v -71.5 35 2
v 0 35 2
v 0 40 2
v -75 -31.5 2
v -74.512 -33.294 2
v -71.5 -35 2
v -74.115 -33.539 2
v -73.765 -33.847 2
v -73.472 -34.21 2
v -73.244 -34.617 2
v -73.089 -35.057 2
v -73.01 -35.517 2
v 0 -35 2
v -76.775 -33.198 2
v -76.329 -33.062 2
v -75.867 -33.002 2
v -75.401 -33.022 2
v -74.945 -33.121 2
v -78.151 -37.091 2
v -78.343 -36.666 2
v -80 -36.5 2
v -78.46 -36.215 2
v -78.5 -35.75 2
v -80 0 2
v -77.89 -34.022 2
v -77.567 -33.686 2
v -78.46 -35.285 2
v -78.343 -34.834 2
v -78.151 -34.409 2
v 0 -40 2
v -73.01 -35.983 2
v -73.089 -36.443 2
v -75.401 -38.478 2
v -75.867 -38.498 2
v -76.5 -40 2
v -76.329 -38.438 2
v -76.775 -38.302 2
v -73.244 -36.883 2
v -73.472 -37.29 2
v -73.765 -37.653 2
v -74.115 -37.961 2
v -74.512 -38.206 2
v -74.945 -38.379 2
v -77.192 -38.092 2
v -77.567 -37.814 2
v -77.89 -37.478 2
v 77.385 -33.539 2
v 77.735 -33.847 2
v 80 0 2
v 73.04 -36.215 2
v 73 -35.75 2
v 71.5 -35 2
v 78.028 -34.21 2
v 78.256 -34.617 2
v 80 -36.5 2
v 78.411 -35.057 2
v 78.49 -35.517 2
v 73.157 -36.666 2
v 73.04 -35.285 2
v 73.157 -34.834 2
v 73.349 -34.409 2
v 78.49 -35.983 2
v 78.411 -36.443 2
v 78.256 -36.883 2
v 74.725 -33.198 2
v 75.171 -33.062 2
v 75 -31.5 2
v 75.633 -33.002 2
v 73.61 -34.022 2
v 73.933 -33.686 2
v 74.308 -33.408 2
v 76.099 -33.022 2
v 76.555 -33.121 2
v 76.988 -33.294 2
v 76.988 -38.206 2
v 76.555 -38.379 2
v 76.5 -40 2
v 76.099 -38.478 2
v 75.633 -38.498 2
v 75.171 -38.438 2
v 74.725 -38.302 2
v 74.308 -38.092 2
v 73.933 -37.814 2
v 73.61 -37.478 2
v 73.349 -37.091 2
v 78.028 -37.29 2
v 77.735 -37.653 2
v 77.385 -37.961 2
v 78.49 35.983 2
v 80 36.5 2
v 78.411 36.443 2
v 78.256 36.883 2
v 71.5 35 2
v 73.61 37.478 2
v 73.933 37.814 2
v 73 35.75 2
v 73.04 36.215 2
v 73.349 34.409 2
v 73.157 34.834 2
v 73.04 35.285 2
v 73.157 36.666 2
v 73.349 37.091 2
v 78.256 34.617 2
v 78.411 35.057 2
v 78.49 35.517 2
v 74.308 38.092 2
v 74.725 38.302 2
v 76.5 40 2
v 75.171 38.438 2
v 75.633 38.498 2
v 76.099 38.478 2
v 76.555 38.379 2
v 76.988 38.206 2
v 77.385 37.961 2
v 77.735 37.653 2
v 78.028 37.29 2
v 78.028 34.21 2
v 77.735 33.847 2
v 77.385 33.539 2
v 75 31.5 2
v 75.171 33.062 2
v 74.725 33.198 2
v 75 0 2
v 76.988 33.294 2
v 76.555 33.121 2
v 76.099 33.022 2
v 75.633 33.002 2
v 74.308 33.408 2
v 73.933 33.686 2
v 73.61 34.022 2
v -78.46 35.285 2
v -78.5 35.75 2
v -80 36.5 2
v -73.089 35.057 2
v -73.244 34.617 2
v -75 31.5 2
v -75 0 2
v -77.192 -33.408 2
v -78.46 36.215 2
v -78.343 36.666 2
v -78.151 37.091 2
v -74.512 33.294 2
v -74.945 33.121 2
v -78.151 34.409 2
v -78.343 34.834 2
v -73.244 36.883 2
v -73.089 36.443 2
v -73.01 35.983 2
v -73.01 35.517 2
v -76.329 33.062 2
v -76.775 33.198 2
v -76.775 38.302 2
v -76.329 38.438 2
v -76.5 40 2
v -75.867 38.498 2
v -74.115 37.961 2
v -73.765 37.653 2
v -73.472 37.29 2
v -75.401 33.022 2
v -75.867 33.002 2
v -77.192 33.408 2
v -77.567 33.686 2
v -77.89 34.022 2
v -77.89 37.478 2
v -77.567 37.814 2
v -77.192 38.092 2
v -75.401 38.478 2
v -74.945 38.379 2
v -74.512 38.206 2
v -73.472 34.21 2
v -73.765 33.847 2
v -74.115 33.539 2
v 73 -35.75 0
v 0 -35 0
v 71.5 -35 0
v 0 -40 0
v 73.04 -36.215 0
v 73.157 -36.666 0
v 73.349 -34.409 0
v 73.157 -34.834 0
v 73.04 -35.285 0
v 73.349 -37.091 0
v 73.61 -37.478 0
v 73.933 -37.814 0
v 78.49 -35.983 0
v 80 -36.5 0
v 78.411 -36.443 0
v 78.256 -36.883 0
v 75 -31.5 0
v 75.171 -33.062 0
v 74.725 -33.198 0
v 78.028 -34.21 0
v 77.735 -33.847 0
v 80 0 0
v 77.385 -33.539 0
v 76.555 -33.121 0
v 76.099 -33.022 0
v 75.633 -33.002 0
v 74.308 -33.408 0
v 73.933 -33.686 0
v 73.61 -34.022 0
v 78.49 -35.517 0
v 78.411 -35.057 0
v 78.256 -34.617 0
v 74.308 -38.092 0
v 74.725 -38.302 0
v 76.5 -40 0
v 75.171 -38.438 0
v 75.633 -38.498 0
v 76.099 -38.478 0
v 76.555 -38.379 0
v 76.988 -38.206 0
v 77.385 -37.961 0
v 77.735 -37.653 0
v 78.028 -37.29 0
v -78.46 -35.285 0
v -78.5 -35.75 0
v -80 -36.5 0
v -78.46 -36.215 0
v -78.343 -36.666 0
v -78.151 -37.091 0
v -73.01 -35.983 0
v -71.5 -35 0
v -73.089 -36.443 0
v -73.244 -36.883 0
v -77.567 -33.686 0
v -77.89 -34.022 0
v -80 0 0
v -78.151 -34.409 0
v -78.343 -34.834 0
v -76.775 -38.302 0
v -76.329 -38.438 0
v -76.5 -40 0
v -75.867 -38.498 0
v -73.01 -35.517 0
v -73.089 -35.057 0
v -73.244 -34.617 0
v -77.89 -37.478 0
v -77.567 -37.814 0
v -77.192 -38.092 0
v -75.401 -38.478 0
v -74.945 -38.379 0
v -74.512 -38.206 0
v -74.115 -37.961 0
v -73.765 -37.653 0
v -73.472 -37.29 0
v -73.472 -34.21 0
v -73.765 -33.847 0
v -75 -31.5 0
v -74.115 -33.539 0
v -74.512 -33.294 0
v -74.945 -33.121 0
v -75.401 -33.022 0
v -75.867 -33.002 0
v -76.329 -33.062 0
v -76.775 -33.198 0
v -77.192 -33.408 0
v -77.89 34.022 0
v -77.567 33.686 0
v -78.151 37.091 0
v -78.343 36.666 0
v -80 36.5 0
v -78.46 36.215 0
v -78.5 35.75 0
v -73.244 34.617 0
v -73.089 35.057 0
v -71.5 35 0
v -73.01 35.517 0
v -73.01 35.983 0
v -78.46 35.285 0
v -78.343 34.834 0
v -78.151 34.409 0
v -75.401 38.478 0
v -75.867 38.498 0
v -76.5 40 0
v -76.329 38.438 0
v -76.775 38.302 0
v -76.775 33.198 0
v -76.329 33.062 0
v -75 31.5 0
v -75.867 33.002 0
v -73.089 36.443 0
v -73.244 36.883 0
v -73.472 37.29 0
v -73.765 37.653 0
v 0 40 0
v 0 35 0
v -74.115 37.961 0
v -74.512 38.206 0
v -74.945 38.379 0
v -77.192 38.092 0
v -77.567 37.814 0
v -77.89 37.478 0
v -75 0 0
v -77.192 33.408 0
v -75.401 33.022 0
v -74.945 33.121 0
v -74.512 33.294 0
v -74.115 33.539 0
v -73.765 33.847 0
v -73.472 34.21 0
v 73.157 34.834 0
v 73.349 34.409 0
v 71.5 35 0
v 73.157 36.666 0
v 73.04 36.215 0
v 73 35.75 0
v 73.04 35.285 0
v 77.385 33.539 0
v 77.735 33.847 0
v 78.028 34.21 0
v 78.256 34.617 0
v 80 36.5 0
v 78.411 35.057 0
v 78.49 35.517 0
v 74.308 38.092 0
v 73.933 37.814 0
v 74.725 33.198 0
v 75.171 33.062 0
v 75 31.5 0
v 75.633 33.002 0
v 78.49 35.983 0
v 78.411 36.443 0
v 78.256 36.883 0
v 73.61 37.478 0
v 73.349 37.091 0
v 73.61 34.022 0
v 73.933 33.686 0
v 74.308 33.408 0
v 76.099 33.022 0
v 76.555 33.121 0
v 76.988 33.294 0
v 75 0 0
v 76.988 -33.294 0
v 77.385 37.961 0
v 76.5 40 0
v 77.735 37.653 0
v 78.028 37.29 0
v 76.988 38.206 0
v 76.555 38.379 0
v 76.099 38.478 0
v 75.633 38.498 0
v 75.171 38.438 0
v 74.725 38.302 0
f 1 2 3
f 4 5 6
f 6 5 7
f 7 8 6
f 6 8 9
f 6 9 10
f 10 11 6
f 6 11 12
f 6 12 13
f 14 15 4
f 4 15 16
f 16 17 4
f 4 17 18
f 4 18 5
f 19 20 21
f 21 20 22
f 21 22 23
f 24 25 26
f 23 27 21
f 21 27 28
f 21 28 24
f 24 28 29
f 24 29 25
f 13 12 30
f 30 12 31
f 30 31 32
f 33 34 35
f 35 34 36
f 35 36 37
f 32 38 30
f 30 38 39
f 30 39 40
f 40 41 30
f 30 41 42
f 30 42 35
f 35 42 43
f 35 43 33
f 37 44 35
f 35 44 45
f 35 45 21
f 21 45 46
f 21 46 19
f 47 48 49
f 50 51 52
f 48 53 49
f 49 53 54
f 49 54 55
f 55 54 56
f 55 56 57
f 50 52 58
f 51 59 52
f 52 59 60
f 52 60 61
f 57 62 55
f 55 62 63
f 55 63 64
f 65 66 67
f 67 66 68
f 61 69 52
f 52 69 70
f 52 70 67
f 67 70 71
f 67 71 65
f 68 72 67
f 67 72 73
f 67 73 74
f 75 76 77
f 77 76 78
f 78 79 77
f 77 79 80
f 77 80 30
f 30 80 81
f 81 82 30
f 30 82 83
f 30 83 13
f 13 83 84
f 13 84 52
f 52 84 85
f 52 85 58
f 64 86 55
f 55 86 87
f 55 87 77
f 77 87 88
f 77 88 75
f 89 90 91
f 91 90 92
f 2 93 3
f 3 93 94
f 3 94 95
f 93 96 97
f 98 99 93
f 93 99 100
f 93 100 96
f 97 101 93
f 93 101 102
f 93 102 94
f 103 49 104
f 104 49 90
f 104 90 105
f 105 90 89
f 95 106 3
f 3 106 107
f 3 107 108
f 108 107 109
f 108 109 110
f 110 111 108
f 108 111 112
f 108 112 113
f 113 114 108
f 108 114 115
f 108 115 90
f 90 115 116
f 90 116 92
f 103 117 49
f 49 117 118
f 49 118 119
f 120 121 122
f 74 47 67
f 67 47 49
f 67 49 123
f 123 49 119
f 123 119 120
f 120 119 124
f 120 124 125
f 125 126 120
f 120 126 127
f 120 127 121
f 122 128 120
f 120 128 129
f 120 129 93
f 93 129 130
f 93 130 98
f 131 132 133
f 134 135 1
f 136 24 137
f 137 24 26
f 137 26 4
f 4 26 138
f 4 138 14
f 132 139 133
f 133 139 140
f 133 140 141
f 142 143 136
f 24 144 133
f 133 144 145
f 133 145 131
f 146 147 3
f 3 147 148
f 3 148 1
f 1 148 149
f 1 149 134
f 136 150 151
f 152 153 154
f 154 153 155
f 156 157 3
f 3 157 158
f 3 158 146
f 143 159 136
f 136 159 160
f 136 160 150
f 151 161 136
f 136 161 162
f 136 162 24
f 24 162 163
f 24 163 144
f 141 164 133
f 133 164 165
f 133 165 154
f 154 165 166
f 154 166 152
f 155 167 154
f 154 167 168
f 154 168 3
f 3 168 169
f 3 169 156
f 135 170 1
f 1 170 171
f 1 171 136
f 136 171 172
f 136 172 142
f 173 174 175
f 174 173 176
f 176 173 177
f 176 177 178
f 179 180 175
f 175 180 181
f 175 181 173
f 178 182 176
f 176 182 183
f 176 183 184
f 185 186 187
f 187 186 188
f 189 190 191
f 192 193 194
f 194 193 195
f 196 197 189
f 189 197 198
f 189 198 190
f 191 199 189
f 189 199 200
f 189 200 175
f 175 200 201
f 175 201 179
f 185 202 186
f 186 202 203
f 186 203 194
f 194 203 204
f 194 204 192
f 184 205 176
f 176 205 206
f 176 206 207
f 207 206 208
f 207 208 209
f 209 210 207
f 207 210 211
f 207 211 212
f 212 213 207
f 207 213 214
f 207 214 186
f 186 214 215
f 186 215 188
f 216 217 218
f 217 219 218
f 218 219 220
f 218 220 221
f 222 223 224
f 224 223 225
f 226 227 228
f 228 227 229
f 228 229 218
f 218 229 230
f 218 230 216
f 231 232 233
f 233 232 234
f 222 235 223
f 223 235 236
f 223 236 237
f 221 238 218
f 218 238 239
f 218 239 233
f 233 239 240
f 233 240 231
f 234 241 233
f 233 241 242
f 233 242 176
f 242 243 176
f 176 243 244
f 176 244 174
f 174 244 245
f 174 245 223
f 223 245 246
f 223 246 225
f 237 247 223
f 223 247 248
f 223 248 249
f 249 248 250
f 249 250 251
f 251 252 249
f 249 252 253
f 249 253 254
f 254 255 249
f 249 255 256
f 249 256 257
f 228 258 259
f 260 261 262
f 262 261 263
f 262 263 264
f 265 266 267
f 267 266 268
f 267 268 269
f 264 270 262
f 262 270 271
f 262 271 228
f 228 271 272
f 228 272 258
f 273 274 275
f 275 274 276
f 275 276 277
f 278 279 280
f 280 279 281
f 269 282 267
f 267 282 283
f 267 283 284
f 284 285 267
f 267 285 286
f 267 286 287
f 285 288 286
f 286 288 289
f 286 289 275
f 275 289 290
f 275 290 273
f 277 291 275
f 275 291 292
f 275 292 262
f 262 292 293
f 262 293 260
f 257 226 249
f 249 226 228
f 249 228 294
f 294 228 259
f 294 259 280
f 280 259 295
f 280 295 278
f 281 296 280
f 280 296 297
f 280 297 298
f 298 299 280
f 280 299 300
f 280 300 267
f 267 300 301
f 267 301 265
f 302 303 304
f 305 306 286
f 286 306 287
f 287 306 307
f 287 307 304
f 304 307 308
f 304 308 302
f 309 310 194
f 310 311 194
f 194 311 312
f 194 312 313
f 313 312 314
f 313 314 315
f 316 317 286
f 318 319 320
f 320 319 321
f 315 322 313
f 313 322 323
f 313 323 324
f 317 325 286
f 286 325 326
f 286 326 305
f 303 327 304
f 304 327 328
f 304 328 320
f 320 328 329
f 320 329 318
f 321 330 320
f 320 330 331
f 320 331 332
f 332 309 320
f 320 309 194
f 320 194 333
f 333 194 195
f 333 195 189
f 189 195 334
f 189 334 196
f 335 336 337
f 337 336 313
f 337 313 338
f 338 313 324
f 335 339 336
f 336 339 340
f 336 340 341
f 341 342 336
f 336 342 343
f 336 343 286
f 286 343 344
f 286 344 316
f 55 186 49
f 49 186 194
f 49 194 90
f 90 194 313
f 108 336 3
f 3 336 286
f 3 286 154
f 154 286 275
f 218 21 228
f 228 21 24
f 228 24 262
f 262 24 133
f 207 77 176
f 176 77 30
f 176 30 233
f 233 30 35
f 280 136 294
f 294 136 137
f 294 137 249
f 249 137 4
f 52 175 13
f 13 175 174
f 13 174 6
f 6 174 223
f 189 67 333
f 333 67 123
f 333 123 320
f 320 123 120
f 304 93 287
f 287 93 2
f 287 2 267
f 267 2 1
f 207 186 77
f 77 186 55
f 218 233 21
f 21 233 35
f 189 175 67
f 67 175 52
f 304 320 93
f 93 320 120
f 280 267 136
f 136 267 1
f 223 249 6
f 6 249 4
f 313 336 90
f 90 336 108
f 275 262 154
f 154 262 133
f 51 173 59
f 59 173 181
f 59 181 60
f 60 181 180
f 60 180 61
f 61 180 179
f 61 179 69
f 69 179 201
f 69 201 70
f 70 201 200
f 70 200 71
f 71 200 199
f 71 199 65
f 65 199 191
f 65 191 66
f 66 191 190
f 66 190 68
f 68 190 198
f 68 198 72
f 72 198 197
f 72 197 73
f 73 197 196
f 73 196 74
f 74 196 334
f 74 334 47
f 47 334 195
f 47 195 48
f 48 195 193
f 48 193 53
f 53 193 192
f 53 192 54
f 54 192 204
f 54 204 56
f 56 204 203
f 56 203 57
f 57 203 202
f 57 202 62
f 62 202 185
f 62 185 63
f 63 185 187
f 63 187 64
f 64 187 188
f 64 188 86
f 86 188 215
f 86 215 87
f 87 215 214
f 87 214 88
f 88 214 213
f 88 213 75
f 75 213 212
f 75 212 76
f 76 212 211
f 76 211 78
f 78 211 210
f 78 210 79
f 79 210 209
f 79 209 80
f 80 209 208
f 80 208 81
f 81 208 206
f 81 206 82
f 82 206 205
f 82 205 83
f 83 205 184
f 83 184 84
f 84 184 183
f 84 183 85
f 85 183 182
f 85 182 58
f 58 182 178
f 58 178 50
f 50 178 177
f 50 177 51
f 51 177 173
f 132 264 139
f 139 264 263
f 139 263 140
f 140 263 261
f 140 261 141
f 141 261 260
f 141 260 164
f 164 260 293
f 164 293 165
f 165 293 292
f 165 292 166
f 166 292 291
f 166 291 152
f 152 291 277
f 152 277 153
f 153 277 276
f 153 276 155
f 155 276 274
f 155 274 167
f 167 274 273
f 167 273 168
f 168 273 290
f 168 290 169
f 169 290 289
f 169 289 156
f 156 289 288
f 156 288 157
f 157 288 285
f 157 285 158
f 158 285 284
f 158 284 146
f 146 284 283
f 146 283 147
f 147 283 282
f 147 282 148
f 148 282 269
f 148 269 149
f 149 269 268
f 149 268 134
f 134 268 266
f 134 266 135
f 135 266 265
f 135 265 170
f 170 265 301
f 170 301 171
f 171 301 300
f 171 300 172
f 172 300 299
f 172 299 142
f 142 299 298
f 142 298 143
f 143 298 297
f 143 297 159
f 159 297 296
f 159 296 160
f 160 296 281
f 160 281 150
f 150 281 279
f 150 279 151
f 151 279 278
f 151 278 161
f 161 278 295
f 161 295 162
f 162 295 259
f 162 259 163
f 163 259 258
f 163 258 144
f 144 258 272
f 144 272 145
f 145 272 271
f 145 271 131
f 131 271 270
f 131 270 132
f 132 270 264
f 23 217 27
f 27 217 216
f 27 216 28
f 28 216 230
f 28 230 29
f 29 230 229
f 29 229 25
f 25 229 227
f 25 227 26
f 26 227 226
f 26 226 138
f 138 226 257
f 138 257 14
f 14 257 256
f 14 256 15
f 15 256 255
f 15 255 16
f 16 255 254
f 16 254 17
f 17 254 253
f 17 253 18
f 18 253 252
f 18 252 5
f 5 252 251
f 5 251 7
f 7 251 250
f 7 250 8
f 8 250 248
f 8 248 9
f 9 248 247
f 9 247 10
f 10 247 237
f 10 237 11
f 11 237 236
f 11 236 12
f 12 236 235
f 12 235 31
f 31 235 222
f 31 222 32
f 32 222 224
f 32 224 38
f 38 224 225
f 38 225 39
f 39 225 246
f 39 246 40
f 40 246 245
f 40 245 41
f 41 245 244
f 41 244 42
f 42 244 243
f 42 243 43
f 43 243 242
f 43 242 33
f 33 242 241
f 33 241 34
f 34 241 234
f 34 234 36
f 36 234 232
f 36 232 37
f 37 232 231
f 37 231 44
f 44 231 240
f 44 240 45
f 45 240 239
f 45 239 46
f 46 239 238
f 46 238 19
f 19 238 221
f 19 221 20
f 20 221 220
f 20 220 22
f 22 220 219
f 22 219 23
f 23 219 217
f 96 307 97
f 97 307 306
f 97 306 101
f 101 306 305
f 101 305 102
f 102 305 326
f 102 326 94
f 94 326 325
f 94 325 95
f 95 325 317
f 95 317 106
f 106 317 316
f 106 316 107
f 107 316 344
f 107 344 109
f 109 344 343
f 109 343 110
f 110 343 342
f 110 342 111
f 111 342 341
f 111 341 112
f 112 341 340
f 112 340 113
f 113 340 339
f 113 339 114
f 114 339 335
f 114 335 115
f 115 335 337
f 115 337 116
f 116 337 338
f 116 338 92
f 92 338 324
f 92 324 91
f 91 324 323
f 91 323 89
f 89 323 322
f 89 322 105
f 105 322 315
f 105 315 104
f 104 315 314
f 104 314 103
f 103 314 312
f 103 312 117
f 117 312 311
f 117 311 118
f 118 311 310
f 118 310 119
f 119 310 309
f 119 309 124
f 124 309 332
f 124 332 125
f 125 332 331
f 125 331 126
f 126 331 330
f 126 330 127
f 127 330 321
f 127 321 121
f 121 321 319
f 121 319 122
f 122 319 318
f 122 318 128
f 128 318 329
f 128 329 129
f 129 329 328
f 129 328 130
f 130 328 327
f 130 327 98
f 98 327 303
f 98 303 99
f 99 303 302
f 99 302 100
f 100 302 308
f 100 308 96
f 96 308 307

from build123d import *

# Parameters (mm, degrees)
SKETCH1_W            = 160
SKETCH1_H            = 80
SKETCH1_W_2          = 150
SKETCH1_H_2          = 70
BOSS_EXTRUDE1_DEPTH  = 2
CHAMFER1_SIZE        = 3.5
M5_CLEARANCE_HOLE1_D = 5.5


with BuildPart() as part:
    # Sketch1 → Boss-Extrude1 (new body)
    with BuildSketch(Plane.XY):
        Rectangle(SKETCH1_W, SKETCH1_H)
        Rectangle(SKETCH1_W_2, SKETCH1_H_2, mode=Mode.SUBTRACT)
    extrude(amount=BOSS_EXTRUDE1_DEPTH)

    # Chamfer1
    chamfer1_edges = [part.edges().sort_by_distance(p)[0] for p in [
        (-75, 35, 1),
        (-75, -35, 1),
        (75, -35, 1),
        (75, 35, 1),
        (80, -40, 1),
        (-80, -40, 1),
        (-80, 40, 1),
        (80, 40, 1),
    ]]
    chamfer(chamfer1_edges, length=CHAMFER1_SIZE)

    # M5 Clearance Hole1 (through all)
    with Locations(Plane(origin=(0, 0, 0), x_dir=(-1, 0, 0), z_dir=(0, 0, -1))):
        with Locations((0, 0), (-75.75, 35.75), (75.75, -35.75), (75.75, 35.75), (-75.75, -35.75)):
            Hole(M5_CLEARANCE_HOLE1_D / 2)


solid = part.part
